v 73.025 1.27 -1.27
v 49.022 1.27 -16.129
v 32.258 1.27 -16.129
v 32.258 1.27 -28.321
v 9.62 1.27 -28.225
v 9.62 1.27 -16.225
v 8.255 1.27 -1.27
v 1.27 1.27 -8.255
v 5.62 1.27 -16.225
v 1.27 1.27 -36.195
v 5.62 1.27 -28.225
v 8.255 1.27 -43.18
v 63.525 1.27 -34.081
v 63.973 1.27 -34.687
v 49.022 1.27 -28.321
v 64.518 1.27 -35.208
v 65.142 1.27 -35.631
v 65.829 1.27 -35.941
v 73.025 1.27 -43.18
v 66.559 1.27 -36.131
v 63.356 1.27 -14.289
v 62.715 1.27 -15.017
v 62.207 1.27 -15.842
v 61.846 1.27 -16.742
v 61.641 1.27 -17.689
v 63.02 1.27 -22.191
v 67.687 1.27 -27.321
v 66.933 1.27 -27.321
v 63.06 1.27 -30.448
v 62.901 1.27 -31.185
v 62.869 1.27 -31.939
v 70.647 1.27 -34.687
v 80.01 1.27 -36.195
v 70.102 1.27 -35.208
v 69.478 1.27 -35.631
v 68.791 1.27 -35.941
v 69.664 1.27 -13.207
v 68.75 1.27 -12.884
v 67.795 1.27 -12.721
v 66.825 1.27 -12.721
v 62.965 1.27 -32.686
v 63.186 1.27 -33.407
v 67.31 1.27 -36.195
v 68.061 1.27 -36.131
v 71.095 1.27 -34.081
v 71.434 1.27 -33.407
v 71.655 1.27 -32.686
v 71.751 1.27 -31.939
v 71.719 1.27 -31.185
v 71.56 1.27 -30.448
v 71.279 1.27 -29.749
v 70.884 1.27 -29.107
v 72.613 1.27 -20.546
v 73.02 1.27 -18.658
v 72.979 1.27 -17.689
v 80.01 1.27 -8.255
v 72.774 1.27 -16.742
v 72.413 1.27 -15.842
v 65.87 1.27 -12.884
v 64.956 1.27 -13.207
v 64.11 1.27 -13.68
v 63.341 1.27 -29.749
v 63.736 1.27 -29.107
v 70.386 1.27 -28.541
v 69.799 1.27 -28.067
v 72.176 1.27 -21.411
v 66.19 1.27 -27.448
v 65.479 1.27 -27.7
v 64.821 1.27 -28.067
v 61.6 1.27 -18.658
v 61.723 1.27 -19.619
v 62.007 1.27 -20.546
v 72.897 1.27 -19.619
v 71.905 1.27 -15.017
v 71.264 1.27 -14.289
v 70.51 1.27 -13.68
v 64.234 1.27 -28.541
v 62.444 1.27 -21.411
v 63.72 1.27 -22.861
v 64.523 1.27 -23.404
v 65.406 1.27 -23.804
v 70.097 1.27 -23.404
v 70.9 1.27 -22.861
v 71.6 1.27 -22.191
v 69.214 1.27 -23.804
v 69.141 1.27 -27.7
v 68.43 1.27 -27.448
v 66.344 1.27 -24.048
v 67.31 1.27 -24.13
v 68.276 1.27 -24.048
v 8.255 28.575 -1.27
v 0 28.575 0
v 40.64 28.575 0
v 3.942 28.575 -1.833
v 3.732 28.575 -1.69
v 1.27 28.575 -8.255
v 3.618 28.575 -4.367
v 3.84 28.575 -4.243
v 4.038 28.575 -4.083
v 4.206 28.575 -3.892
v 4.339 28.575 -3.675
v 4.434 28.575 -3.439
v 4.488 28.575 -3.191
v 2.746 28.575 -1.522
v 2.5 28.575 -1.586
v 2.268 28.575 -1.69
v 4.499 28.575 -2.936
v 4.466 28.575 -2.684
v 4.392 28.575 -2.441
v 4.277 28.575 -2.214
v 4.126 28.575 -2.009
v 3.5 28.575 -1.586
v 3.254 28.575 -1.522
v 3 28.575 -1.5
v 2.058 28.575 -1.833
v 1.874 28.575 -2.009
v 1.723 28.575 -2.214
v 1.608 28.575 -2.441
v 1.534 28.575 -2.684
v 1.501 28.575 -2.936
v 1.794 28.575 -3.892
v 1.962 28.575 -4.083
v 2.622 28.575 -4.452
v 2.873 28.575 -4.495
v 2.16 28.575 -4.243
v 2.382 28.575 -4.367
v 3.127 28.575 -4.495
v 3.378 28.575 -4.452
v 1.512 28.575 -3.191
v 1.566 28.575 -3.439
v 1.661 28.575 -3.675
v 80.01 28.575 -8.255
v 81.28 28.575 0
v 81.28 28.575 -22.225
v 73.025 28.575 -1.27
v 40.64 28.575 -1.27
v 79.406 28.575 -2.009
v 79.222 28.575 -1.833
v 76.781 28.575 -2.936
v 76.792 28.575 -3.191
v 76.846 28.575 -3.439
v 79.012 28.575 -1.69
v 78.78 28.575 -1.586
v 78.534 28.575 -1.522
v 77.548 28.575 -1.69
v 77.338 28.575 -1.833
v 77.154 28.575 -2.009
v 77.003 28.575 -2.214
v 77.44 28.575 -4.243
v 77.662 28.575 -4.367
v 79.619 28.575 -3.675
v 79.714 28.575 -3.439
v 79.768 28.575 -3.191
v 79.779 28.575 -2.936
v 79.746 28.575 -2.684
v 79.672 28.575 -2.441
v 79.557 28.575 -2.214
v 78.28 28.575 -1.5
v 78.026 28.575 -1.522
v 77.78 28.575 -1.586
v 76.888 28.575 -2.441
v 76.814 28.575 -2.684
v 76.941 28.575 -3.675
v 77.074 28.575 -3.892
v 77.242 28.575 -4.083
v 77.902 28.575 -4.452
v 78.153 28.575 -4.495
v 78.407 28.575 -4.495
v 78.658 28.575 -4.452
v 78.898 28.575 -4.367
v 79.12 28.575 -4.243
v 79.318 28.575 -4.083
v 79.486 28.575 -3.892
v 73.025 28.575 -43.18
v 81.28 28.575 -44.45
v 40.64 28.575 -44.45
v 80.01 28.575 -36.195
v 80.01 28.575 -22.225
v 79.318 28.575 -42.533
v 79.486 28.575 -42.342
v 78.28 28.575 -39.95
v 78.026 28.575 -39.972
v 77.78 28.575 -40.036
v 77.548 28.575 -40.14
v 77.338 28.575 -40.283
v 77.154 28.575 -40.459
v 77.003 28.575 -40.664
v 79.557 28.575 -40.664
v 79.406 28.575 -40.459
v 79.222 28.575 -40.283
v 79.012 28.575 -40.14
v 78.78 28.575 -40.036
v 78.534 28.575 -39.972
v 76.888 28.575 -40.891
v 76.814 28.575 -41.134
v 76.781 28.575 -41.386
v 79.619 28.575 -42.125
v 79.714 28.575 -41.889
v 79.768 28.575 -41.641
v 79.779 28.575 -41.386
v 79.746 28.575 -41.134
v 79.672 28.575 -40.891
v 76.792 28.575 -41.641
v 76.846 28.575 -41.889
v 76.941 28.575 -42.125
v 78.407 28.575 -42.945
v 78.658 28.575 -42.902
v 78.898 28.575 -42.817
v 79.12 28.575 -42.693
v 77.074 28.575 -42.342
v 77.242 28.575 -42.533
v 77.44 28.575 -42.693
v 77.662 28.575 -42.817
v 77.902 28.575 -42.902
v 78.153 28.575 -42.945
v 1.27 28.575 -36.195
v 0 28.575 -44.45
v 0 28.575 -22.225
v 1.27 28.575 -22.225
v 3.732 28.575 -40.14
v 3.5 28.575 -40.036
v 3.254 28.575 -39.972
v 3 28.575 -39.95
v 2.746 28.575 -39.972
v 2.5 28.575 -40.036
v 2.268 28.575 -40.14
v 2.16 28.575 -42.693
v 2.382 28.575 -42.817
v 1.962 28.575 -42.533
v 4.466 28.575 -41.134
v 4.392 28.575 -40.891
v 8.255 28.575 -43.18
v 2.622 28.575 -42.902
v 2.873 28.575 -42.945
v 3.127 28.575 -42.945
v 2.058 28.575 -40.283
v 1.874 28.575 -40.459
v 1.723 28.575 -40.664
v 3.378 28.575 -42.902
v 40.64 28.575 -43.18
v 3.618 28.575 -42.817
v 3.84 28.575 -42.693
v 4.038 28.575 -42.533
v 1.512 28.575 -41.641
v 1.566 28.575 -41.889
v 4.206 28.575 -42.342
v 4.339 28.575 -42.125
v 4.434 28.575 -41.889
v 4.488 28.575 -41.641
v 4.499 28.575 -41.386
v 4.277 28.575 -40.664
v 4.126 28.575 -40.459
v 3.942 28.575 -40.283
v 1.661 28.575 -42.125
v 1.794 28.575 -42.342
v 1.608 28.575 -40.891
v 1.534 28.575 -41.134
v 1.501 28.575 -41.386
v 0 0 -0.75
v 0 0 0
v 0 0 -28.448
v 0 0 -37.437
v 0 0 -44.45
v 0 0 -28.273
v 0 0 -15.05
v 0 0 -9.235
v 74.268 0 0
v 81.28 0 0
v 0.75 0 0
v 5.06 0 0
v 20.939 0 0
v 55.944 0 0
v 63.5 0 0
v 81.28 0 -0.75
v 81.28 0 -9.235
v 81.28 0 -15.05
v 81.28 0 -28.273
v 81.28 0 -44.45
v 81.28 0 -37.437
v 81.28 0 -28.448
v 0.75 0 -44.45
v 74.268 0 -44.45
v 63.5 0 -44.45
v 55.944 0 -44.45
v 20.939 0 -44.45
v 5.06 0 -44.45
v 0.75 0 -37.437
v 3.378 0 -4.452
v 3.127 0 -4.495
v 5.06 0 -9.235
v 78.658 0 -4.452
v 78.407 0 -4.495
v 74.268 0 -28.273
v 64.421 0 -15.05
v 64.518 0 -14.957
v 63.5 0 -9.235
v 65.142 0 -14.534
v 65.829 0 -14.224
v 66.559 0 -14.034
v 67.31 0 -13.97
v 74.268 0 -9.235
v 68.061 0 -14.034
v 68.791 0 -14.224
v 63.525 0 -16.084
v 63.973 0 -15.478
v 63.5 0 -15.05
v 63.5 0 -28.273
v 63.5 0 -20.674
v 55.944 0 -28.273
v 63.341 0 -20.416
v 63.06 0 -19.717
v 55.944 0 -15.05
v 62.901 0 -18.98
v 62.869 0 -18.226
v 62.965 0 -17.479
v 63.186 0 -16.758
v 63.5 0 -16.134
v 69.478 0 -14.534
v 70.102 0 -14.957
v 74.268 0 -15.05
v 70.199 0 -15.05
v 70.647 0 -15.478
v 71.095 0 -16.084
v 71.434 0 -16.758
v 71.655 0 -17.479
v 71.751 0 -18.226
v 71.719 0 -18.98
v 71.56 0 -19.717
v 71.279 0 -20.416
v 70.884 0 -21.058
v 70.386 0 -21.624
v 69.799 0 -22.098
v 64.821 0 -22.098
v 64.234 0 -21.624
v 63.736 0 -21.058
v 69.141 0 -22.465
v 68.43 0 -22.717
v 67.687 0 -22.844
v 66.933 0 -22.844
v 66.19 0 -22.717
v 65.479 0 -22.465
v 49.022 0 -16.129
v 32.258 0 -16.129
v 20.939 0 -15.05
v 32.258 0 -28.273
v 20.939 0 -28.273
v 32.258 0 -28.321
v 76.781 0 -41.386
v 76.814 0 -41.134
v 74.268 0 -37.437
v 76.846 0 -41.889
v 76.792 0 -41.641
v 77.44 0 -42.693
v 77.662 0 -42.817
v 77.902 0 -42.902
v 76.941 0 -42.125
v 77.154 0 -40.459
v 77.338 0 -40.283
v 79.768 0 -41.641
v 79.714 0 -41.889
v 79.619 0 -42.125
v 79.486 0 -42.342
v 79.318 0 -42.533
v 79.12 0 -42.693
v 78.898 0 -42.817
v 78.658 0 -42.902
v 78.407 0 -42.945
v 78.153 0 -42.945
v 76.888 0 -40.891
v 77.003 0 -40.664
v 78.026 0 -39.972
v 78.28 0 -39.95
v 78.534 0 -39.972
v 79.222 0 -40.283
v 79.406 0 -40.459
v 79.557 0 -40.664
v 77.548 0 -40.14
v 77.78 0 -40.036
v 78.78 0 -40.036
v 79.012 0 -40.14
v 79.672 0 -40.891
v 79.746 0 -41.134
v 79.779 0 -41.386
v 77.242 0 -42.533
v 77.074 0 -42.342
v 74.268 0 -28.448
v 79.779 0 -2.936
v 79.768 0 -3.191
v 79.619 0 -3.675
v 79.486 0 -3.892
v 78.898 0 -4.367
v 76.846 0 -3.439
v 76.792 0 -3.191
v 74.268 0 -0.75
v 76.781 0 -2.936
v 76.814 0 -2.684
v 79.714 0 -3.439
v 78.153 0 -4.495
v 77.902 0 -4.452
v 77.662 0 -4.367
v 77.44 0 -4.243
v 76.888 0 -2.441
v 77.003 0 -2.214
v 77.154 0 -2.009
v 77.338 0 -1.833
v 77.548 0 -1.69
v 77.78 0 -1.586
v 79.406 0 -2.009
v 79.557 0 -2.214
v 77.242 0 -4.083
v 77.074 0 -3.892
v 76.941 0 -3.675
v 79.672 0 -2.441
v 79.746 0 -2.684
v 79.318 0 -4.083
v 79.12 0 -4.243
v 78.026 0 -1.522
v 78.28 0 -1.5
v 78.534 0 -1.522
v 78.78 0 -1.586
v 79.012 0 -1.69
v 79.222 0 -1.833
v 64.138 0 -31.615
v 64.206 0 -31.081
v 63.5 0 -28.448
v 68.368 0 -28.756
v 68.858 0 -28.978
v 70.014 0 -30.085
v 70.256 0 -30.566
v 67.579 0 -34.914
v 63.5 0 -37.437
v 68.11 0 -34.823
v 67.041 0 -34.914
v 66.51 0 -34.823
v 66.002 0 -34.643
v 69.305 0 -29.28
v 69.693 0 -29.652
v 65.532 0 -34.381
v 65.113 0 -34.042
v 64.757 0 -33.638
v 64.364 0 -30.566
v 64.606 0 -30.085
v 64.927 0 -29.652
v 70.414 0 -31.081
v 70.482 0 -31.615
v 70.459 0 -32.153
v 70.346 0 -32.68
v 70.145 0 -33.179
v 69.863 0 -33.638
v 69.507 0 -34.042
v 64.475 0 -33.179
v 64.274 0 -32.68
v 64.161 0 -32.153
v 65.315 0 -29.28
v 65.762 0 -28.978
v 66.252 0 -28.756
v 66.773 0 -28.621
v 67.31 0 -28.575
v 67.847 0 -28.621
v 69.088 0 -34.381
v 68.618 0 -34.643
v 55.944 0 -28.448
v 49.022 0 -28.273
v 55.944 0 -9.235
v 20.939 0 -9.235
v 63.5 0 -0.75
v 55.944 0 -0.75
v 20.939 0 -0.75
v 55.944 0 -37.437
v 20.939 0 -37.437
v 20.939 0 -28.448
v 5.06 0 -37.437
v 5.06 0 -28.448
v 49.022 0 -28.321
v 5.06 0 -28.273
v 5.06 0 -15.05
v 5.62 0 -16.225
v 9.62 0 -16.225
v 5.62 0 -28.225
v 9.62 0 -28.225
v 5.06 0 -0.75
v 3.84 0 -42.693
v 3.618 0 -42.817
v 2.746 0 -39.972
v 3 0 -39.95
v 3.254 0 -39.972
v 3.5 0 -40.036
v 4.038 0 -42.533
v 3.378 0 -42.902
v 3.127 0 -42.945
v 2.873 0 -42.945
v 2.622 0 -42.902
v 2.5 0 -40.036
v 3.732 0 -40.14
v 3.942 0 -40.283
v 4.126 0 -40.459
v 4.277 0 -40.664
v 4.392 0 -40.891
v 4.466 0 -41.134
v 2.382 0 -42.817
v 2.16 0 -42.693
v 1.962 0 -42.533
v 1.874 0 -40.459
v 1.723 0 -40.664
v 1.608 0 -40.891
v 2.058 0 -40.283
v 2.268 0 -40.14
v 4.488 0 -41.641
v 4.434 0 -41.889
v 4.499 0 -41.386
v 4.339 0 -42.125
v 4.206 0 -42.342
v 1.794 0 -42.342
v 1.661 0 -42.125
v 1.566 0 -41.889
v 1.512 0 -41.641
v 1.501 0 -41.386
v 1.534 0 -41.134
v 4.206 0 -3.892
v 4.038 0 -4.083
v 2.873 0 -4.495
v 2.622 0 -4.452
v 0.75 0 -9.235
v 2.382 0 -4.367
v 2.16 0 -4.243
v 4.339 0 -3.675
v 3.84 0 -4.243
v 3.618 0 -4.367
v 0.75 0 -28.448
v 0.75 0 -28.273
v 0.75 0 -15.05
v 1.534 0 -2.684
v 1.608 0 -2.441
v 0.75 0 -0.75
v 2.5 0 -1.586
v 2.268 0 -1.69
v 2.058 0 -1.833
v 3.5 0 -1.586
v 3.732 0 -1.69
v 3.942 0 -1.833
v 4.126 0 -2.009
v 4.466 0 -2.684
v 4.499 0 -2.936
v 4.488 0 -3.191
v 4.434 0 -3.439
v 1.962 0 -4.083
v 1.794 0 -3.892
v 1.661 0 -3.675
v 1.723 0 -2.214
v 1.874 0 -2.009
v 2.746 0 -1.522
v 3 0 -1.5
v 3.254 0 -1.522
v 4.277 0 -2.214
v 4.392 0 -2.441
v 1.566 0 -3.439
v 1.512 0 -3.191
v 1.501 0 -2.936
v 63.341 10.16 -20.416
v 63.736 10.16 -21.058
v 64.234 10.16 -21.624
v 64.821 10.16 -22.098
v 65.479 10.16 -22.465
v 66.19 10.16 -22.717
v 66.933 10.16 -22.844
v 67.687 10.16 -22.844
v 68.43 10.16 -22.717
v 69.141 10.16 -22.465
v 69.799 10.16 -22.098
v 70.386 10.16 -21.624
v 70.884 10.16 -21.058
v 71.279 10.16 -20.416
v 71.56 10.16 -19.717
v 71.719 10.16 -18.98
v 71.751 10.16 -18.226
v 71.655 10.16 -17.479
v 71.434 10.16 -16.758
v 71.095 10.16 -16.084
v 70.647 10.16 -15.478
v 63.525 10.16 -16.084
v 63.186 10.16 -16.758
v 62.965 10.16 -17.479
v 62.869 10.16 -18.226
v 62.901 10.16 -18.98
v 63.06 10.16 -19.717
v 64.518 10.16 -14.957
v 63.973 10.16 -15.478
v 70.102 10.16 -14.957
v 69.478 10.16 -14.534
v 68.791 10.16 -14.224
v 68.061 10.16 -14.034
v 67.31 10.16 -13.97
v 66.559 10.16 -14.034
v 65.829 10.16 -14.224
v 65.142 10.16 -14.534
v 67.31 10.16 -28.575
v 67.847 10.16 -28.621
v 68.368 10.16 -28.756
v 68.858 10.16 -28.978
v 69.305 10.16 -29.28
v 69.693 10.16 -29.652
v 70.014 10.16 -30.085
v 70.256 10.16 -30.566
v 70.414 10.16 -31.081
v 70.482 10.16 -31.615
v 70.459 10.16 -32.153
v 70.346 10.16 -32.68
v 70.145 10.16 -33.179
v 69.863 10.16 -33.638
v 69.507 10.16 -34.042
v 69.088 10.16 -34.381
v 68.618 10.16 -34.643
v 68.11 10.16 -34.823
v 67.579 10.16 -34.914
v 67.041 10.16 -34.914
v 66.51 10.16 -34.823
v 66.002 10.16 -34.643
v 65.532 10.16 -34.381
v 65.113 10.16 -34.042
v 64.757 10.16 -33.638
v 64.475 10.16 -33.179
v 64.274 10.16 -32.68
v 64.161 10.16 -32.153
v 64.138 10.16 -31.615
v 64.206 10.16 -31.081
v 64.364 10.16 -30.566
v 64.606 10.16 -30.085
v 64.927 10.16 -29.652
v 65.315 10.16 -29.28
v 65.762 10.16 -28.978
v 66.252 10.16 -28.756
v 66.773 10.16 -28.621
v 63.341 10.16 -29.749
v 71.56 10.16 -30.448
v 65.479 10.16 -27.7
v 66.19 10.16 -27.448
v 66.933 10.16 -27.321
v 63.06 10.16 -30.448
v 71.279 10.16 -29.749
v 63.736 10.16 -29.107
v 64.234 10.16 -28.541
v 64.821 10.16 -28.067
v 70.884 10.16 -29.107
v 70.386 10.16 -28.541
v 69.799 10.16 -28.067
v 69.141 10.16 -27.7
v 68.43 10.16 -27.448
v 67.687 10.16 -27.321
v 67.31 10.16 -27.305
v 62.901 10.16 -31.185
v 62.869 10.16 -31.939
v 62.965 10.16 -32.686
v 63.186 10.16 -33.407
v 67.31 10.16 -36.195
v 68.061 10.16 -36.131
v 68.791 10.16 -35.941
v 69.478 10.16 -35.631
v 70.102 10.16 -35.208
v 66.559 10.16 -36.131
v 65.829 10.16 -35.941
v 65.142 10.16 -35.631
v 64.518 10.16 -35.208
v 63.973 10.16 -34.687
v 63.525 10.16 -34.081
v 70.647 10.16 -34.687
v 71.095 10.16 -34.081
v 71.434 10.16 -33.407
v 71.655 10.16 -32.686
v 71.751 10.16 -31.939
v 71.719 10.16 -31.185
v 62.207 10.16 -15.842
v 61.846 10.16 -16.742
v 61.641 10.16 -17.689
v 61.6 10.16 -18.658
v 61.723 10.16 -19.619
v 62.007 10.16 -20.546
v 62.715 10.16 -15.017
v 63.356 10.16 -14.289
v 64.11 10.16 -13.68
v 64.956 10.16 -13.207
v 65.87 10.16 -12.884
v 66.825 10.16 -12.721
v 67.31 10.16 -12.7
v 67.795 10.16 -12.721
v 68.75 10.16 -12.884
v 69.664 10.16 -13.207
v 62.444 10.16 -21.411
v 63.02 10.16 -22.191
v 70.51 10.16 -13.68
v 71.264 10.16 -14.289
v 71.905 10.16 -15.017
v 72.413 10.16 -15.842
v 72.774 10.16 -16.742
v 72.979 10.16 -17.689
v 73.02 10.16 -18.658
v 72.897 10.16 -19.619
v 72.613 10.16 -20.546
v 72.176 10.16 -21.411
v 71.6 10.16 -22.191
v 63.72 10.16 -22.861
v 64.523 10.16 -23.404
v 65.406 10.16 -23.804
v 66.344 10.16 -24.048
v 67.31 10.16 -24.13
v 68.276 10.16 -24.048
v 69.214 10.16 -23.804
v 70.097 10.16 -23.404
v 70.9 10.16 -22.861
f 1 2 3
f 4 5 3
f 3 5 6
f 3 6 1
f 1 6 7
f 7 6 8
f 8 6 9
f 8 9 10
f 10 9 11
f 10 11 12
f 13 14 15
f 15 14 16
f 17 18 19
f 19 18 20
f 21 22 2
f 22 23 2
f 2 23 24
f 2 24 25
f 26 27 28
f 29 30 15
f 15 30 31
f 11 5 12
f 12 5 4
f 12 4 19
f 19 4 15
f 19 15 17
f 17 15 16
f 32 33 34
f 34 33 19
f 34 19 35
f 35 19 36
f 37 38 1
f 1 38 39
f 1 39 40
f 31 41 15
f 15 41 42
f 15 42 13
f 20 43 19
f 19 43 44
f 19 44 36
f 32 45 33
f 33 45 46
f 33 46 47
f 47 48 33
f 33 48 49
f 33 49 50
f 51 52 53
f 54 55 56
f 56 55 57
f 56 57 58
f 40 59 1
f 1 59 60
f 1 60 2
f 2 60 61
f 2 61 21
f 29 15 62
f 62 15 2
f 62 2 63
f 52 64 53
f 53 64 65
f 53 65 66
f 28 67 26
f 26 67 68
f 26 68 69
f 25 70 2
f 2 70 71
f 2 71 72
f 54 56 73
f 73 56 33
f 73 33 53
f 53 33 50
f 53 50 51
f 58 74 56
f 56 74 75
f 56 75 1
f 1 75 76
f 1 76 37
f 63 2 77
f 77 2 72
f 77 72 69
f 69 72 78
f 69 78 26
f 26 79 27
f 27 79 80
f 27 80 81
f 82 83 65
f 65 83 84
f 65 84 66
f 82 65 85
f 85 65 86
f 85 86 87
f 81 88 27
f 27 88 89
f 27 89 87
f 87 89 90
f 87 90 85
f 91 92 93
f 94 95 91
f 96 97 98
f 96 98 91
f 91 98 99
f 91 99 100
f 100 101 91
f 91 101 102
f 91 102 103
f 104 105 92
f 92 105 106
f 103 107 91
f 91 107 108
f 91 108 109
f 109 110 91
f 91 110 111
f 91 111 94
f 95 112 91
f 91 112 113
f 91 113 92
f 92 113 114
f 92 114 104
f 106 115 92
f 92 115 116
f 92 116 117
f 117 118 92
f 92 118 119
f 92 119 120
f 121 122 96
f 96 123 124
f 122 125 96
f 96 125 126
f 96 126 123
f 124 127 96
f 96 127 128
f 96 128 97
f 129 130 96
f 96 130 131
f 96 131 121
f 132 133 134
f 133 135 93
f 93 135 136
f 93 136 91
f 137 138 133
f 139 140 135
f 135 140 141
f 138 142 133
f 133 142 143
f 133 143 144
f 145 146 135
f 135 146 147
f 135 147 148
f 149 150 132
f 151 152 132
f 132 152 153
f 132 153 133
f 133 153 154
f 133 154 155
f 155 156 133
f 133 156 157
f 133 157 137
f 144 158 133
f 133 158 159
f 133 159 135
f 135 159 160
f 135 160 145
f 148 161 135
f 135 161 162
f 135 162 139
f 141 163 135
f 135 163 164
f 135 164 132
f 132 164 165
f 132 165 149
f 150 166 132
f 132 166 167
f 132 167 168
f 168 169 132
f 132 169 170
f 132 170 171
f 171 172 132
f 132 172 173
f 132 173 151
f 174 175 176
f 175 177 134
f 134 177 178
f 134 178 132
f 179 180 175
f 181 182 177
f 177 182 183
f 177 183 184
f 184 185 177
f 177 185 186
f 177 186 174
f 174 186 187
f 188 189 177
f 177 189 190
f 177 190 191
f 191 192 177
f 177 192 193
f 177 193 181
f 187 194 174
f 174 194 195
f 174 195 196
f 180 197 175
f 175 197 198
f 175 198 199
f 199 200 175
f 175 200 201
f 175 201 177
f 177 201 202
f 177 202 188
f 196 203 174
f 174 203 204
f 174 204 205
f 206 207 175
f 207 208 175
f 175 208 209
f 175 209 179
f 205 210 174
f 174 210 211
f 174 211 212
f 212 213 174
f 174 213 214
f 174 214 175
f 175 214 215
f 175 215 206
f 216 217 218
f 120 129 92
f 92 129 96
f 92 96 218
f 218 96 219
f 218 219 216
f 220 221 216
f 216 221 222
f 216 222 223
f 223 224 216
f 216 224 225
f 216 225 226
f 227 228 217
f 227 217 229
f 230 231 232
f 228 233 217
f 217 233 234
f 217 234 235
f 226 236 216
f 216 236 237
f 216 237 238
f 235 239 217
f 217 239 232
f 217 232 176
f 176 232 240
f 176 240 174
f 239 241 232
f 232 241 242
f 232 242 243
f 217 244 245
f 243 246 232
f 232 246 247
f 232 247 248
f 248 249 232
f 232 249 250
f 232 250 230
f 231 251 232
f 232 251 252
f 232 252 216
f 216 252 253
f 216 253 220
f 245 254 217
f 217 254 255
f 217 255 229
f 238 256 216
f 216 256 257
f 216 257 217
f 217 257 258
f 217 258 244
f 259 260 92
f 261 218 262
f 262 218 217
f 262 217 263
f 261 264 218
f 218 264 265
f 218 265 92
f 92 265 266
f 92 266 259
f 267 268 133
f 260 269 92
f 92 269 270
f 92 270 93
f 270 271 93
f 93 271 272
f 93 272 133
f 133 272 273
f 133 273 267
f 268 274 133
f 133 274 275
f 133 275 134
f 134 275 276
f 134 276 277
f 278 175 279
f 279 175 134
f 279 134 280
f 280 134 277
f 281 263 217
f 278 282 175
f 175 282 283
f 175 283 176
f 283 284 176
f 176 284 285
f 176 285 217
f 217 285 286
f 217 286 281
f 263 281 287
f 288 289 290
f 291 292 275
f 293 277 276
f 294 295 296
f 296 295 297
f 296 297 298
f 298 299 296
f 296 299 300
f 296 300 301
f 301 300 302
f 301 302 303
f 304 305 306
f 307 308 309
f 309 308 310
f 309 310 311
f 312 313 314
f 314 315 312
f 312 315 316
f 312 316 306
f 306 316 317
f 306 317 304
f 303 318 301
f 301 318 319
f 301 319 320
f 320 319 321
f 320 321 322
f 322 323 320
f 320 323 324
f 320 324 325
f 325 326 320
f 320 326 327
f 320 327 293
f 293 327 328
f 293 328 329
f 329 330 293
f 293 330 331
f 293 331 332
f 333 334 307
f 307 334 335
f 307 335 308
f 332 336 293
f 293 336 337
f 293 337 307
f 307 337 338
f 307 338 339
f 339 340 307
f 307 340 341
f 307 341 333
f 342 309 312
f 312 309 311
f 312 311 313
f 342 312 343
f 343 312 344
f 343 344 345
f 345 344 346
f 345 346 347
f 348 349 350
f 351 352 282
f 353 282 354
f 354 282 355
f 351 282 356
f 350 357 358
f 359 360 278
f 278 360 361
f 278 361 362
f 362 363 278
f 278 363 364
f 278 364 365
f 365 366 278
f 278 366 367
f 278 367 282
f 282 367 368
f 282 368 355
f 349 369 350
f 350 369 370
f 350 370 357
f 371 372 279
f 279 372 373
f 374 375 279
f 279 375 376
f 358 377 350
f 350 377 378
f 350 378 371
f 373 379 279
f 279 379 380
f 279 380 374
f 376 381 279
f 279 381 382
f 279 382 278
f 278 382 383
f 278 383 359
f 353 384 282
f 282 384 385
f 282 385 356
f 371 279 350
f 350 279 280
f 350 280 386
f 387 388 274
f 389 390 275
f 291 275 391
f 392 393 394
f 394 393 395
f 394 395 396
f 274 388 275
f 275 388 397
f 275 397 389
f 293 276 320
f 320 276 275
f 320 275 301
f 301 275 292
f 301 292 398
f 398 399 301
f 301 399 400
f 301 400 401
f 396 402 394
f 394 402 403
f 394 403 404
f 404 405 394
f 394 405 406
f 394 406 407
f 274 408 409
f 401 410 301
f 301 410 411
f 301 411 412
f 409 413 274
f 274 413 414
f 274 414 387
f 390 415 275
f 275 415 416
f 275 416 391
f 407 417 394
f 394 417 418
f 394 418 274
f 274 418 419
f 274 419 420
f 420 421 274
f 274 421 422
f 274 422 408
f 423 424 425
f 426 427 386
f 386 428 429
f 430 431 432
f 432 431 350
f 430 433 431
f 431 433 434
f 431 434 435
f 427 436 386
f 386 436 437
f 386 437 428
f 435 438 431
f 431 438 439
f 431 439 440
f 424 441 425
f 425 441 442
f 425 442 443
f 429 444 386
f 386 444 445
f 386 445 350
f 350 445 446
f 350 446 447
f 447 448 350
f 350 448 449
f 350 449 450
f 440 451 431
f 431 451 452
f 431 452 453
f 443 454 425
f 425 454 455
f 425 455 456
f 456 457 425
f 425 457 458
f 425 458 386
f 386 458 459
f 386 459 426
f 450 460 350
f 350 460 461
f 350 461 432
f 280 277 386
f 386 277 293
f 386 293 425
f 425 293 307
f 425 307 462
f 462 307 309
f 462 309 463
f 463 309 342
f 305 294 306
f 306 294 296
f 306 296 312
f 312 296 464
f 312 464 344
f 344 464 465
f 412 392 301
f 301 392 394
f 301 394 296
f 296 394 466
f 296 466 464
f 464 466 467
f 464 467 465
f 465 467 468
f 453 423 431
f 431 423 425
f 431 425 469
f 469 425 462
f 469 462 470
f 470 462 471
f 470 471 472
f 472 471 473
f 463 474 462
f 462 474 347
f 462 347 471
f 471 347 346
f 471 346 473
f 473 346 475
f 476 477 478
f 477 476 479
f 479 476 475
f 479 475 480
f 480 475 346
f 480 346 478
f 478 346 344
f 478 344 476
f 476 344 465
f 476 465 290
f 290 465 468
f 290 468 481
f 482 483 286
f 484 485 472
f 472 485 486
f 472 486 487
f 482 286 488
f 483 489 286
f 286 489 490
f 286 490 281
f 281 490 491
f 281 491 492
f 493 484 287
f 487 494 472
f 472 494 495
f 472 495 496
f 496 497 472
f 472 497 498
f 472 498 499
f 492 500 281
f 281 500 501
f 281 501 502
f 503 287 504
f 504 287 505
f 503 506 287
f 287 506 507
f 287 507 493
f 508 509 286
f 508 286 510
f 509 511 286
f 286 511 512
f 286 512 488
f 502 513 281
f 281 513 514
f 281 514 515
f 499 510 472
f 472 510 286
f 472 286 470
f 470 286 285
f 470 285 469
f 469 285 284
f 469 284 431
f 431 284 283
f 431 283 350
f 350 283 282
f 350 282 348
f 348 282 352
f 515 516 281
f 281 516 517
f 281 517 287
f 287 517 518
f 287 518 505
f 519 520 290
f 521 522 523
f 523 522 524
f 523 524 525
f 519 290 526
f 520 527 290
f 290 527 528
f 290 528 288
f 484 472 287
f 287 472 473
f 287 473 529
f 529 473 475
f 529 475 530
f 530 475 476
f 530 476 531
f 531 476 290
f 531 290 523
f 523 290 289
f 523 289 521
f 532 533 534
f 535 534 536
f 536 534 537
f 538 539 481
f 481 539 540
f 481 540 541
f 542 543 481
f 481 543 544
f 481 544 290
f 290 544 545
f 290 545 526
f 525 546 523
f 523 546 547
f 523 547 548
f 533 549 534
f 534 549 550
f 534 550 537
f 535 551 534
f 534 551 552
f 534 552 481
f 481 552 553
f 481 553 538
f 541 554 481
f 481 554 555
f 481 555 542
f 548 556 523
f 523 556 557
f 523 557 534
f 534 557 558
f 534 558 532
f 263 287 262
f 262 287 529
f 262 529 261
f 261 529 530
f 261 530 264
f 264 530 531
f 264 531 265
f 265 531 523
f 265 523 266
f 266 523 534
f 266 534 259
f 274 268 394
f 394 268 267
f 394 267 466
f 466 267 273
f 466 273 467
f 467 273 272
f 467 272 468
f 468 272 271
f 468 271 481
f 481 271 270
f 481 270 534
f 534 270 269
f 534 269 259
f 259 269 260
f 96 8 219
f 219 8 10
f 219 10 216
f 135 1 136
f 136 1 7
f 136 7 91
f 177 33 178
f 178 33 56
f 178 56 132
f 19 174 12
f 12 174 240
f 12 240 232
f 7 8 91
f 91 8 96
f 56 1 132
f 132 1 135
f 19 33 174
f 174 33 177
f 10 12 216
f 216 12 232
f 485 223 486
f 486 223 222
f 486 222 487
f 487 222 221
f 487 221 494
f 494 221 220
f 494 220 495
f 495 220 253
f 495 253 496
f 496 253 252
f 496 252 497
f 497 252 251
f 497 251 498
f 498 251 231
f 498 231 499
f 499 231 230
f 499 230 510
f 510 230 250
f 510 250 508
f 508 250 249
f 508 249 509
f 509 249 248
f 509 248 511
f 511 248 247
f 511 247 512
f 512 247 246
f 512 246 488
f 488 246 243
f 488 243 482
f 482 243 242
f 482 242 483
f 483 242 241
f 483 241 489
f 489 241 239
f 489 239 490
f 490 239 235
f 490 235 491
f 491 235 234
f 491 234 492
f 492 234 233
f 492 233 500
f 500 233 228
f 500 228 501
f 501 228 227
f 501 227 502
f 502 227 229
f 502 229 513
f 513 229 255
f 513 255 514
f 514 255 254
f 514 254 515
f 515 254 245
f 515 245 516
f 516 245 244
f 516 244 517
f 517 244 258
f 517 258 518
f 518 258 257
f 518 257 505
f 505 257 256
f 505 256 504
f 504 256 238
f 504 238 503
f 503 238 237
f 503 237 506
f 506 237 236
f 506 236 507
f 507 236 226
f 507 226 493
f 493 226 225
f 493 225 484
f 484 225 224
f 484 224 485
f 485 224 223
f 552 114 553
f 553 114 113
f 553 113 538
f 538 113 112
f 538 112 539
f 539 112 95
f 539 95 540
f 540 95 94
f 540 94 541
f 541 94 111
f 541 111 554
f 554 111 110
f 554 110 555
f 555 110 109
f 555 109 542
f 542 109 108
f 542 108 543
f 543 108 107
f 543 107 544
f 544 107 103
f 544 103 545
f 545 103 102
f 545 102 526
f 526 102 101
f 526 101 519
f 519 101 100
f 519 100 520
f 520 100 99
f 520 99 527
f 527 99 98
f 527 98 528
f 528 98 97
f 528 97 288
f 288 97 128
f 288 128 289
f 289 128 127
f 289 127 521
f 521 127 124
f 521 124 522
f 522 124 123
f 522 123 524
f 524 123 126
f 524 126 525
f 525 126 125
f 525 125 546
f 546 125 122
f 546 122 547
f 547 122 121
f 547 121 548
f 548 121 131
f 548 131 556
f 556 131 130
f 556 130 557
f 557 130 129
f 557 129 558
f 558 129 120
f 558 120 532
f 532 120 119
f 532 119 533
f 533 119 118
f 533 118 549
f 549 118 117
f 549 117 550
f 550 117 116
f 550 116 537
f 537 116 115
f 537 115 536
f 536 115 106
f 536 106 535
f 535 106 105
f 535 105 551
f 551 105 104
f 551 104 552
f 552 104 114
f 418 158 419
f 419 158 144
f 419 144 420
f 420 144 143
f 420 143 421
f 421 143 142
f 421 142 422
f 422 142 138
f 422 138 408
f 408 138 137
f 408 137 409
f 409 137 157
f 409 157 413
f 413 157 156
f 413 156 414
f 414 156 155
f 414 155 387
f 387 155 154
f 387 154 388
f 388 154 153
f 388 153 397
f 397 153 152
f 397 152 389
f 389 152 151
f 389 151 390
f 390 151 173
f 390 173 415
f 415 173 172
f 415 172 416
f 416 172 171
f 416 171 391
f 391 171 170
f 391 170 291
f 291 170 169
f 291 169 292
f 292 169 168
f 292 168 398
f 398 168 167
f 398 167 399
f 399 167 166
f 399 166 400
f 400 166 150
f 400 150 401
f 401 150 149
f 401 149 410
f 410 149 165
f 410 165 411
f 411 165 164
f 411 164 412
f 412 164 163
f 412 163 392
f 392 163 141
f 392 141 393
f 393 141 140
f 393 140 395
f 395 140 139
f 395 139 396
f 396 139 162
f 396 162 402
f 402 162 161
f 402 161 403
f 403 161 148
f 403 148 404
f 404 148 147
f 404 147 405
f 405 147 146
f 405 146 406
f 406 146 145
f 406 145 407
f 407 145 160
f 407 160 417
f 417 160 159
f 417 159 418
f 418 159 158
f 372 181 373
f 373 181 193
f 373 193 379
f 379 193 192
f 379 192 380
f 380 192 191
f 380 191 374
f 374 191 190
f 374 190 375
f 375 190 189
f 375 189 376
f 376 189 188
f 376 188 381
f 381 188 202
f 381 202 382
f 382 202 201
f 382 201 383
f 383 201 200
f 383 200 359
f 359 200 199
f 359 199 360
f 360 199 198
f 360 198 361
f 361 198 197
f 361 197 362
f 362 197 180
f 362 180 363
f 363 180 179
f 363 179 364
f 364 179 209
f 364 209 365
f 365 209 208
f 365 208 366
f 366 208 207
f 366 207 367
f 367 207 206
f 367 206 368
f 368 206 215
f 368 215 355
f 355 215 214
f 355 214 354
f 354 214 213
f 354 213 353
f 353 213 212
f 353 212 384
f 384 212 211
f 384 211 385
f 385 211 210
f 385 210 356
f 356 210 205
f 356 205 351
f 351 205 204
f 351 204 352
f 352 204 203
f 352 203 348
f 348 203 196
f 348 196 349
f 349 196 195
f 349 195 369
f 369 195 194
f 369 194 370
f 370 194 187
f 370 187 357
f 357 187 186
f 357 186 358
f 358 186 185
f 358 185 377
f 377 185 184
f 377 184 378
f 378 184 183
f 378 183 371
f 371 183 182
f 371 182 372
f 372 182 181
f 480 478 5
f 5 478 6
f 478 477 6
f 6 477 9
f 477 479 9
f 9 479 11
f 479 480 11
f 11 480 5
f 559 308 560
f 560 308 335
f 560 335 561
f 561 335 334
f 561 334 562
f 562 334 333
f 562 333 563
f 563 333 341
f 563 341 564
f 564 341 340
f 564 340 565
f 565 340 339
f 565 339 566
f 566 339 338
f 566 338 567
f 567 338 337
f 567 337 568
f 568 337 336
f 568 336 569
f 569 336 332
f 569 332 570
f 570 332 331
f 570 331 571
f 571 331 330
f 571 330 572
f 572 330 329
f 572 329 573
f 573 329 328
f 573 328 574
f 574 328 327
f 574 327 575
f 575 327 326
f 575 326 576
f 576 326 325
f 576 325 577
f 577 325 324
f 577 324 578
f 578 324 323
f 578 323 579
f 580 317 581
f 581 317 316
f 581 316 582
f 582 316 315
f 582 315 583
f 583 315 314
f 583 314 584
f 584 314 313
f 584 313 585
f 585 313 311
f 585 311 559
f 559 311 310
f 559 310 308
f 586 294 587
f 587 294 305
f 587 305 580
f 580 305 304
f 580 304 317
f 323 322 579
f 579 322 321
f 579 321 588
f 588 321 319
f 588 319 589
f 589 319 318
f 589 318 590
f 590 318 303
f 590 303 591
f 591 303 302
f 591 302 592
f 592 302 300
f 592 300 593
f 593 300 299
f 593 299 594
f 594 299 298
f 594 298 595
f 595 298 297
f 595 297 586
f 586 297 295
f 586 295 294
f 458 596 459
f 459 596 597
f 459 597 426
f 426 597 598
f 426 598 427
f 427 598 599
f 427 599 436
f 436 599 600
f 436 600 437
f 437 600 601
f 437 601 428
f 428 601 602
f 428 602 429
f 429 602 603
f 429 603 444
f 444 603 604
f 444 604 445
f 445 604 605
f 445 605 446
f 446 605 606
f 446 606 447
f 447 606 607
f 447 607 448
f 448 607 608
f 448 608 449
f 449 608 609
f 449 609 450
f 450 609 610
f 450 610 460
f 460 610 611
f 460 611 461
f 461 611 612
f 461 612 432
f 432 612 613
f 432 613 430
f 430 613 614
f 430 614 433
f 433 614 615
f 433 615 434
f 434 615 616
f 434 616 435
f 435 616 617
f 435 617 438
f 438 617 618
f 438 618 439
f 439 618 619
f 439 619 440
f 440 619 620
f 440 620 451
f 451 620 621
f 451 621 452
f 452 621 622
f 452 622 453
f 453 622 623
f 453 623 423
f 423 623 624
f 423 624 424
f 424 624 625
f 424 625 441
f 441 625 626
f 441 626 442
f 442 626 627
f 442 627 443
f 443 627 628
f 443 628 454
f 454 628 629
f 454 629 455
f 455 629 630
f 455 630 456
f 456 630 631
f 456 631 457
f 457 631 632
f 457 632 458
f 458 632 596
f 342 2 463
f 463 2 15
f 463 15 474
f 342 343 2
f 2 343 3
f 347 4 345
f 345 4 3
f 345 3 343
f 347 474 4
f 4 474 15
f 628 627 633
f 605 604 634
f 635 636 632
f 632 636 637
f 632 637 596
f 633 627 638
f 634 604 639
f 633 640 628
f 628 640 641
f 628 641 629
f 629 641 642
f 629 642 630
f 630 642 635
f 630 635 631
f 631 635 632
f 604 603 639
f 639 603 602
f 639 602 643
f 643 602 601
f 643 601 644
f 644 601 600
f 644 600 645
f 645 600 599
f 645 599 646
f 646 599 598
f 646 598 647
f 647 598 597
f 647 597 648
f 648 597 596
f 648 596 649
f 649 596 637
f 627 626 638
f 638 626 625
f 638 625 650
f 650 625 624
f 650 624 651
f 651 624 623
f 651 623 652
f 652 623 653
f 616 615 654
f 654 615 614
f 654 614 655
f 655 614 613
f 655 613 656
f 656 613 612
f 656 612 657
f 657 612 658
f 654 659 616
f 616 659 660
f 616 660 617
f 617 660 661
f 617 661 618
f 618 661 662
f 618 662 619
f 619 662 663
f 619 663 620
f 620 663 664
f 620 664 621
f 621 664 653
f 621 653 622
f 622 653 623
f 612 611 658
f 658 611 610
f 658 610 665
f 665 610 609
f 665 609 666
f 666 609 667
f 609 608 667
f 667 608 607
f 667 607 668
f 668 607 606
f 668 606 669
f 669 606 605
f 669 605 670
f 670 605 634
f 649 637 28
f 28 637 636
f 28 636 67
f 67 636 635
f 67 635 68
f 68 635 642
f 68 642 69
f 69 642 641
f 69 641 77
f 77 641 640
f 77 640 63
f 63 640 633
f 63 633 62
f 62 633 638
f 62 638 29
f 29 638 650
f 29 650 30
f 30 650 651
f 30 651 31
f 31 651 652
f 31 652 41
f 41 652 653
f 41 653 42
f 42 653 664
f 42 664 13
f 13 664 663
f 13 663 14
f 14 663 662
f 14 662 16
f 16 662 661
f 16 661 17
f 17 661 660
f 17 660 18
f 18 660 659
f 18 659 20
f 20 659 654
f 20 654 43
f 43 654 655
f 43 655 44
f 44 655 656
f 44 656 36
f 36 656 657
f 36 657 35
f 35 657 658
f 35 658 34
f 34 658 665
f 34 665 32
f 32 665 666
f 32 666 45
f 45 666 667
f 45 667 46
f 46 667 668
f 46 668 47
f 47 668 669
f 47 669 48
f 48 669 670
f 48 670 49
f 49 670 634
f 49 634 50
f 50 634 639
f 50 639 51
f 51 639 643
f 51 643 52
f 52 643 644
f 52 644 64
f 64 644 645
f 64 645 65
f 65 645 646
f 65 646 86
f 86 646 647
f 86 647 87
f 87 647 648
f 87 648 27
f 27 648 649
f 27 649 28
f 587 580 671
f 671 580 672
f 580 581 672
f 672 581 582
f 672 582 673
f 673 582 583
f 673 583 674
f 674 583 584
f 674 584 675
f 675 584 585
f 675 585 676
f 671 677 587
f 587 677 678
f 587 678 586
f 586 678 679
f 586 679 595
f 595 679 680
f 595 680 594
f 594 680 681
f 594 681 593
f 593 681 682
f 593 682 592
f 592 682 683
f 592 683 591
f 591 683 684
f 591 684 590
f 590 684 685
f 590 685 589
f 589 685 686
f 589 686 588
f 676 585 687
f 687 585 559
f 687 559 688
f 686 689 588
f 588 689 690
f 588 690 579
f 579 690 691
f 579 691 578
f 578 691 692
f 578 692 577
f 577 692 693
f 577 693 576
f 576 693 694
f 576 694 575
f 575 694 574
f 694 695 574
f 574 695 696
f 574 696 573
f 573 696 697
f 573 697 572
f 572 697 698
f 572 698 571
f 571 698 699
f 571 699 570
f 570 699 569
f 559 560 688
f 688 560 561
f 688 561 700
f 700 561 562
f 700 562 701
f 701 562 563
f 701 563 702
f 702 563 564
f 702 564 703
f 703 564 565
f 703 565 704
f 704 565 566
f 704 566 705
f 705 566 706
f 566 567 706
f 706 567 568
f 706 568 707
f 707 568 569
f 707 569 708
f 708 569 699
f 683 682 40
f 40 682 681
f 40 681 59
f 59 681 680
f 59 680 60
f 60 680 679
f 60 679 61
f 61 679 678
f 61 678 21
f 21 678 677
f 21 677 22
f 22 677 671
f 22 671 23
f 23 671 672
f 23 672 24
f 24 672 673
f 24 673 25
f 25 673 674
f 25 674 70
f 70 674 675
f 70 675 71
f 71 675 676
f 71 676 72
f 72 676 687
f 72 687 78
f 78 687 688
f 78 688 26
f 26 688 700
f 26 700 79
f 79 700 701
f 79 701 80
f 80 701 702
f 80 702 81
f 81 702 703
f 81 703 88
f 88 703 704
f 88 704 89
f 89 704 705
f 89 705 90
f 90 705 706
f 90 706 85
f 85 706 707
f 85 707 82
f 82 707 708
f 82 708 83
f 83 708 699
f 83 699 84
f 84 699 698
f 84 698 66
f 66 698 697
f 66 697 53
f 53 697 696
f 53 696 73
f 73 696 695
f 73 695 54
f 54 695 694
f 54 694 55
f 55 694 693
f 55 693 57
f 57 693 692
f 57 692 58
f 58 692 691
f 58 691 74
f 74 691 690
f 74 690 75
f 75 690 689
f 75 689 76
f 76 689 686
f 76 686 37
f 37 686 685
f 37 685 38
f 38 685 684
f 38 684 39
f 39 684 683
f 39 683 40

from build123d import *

# Parameters (mm, degrees)
SKETCH1_W           = 81.28
SKETCH1_H           = 44.45
BOSS_EXTRUDE1_DEPTH = 28.575
SHELL1_T            = -1.27
CHAMFER1_SIZE       = 6.985
SKETCH2_R           = 1.5
CUT_EXTRUDE1_DEPTH  = 97.947261565
SKETCH3_R           = 3.175
SKETCH3_R_2         = 4.445
SKETCH3_W           = 4
SKETCH3_H           = 12
SKETCH3_W_2         = 16.764
SKETCH3_H_2         = 12.192
CUT_EXTRUDE2_DEPTH  = 97.580556661
BOSS_EXTRUDE2_START = 8.89
SKETCH4_R           = 5.715
SKETCH4_R_2         = 4.445
SKETCH4_R_3         = 3.175
BOSS_EXTRUDE2_DEPTH = 8.89


with BuildPart() as part:
    # Sketch1 → Boss-Extrude1 (new body)
    with BuildSketch(Plane(origin=(0, 0, 0), x_dir=(1, 0, 0), z_dir=(0, 1, 0))):
        with Locations((40.64, 22.225)):
            Rectangle(SKETCH1_W, SKETCH1_H)
    extrude(amount=BOSS_EXTRUDE1_DEPTH)

    # Shell1
    shell1_openings = [part.faces().sort_by_distance(p)[0] for p in [
        (40.64, 28.575, -22.225),
    ]]
    offset(amount=SHELL1_T, openings=shell1_openings, kind=Kind.INTERSECTION)

    # Chamfer1
    chamfer1_edges = [part.edges().sort_by_distance(p)[0] for p in [
        (1.27, 14.9225, -43.18),
        (1.27, 14.9225, -1.27),
        (80.01, 14.9225, -1.27),
        (80.01, 14.9225, -43.18),
    ]]
    chamfer(chamfer1_edges, length=CHAMFER1_SIZE)

    # Sketch2 → Cut-Extrude1 (cut, through all)
    with BuildSketch(Plane(origin=(0, 28.575, 0), x_dir=(1, 0, 0), z_dir=(0, 1, 0))):
        with Locations(Location((3, 41.45, 0), (0, 0, 270))):
            Circle(SKETCH2_R)
        with Locations(Location((3, 3, 0), (0, 0, 270))):
            Circle(SKETCH2_R)
        with Locations(Location((78.28, 3, 0), (0, 0, 270))):
            Circle(SKETCH2_R)
        with Locations(Location((78.28, 41.45, 0), (0, 0, 270))):
            Circle(SKETCH2_R)
    extrude(amount=-CUT_EXTRUDE1_DEPTH, mode=Mode.SUBTRACT)

    # Sketch3 → Cut-Extrude2 (cut, through all)
    with BuildSketch(Plane(origin=(0, 1.27, 0), x_dir=(1, 0, 0), z_dir=(0, 1, 0))):
        with Locations(Location((67.31, 31.75, 0), (0, 0, 270))):
            Circle(SKETCH3_R)
        with Locations(Location((67.31, 18.415, 0), (0, 0, 270))):
            Circle(SKETCH3_R_2)
        with Locations((7.62, 22.225)):
            Rectangle(SKETCH3_W, SKETCH3_H)
        with Locations((40.64, 22.225)):
            Rectangle(SKETCH3_W_2, SKETCH3_H_2)
    extrude(amount=-CUT_EXTRUDE2_DEPTH, mode=Mode.SUBTRACT)

    # Sketch4 → Boss-Extrude2 (add)
    # profile 1 of 2: a face of its own
    with BuildSketch(Plane(origin=(0, 1.27, 0), x_dir=(1, 0, 0), z_dir=(0, 1, 0)).offset(BOSS_EXTRUDE2_START)):
        with Locations(Location((67.31, 18.415, 0), (0, 0, 90))):
            Circle(SKETCH4_R)
        with Locations(Location((67.31, 18.415, 0), (0, 0, 270))):
            Circle(SKETCH4_R_2, mode=Mode.SUBTRACT)
    # profile 2 of 2: a face of its own
    with BuildSketch(Plane(origin=(0, 1.27, 0), x_dir=(1, 0, 0), z_dir=(0, 1, 0)).offset(BOSS_EXTRUDE2_START)):
        with Locations(Location((67.31, 31.75, 0), (0, 0, 90))):
            Circle(SKETCH4_R_2)
        with Locations(Location((67.31, 31.75, 0), (0, 0, 270))):
            Circle(SKETCH4_R_3, mode=Mode.SUBTRACT)
    extrude(amount=-BOSS_EXTRUDE2_DEPTH)


solid = part.part
